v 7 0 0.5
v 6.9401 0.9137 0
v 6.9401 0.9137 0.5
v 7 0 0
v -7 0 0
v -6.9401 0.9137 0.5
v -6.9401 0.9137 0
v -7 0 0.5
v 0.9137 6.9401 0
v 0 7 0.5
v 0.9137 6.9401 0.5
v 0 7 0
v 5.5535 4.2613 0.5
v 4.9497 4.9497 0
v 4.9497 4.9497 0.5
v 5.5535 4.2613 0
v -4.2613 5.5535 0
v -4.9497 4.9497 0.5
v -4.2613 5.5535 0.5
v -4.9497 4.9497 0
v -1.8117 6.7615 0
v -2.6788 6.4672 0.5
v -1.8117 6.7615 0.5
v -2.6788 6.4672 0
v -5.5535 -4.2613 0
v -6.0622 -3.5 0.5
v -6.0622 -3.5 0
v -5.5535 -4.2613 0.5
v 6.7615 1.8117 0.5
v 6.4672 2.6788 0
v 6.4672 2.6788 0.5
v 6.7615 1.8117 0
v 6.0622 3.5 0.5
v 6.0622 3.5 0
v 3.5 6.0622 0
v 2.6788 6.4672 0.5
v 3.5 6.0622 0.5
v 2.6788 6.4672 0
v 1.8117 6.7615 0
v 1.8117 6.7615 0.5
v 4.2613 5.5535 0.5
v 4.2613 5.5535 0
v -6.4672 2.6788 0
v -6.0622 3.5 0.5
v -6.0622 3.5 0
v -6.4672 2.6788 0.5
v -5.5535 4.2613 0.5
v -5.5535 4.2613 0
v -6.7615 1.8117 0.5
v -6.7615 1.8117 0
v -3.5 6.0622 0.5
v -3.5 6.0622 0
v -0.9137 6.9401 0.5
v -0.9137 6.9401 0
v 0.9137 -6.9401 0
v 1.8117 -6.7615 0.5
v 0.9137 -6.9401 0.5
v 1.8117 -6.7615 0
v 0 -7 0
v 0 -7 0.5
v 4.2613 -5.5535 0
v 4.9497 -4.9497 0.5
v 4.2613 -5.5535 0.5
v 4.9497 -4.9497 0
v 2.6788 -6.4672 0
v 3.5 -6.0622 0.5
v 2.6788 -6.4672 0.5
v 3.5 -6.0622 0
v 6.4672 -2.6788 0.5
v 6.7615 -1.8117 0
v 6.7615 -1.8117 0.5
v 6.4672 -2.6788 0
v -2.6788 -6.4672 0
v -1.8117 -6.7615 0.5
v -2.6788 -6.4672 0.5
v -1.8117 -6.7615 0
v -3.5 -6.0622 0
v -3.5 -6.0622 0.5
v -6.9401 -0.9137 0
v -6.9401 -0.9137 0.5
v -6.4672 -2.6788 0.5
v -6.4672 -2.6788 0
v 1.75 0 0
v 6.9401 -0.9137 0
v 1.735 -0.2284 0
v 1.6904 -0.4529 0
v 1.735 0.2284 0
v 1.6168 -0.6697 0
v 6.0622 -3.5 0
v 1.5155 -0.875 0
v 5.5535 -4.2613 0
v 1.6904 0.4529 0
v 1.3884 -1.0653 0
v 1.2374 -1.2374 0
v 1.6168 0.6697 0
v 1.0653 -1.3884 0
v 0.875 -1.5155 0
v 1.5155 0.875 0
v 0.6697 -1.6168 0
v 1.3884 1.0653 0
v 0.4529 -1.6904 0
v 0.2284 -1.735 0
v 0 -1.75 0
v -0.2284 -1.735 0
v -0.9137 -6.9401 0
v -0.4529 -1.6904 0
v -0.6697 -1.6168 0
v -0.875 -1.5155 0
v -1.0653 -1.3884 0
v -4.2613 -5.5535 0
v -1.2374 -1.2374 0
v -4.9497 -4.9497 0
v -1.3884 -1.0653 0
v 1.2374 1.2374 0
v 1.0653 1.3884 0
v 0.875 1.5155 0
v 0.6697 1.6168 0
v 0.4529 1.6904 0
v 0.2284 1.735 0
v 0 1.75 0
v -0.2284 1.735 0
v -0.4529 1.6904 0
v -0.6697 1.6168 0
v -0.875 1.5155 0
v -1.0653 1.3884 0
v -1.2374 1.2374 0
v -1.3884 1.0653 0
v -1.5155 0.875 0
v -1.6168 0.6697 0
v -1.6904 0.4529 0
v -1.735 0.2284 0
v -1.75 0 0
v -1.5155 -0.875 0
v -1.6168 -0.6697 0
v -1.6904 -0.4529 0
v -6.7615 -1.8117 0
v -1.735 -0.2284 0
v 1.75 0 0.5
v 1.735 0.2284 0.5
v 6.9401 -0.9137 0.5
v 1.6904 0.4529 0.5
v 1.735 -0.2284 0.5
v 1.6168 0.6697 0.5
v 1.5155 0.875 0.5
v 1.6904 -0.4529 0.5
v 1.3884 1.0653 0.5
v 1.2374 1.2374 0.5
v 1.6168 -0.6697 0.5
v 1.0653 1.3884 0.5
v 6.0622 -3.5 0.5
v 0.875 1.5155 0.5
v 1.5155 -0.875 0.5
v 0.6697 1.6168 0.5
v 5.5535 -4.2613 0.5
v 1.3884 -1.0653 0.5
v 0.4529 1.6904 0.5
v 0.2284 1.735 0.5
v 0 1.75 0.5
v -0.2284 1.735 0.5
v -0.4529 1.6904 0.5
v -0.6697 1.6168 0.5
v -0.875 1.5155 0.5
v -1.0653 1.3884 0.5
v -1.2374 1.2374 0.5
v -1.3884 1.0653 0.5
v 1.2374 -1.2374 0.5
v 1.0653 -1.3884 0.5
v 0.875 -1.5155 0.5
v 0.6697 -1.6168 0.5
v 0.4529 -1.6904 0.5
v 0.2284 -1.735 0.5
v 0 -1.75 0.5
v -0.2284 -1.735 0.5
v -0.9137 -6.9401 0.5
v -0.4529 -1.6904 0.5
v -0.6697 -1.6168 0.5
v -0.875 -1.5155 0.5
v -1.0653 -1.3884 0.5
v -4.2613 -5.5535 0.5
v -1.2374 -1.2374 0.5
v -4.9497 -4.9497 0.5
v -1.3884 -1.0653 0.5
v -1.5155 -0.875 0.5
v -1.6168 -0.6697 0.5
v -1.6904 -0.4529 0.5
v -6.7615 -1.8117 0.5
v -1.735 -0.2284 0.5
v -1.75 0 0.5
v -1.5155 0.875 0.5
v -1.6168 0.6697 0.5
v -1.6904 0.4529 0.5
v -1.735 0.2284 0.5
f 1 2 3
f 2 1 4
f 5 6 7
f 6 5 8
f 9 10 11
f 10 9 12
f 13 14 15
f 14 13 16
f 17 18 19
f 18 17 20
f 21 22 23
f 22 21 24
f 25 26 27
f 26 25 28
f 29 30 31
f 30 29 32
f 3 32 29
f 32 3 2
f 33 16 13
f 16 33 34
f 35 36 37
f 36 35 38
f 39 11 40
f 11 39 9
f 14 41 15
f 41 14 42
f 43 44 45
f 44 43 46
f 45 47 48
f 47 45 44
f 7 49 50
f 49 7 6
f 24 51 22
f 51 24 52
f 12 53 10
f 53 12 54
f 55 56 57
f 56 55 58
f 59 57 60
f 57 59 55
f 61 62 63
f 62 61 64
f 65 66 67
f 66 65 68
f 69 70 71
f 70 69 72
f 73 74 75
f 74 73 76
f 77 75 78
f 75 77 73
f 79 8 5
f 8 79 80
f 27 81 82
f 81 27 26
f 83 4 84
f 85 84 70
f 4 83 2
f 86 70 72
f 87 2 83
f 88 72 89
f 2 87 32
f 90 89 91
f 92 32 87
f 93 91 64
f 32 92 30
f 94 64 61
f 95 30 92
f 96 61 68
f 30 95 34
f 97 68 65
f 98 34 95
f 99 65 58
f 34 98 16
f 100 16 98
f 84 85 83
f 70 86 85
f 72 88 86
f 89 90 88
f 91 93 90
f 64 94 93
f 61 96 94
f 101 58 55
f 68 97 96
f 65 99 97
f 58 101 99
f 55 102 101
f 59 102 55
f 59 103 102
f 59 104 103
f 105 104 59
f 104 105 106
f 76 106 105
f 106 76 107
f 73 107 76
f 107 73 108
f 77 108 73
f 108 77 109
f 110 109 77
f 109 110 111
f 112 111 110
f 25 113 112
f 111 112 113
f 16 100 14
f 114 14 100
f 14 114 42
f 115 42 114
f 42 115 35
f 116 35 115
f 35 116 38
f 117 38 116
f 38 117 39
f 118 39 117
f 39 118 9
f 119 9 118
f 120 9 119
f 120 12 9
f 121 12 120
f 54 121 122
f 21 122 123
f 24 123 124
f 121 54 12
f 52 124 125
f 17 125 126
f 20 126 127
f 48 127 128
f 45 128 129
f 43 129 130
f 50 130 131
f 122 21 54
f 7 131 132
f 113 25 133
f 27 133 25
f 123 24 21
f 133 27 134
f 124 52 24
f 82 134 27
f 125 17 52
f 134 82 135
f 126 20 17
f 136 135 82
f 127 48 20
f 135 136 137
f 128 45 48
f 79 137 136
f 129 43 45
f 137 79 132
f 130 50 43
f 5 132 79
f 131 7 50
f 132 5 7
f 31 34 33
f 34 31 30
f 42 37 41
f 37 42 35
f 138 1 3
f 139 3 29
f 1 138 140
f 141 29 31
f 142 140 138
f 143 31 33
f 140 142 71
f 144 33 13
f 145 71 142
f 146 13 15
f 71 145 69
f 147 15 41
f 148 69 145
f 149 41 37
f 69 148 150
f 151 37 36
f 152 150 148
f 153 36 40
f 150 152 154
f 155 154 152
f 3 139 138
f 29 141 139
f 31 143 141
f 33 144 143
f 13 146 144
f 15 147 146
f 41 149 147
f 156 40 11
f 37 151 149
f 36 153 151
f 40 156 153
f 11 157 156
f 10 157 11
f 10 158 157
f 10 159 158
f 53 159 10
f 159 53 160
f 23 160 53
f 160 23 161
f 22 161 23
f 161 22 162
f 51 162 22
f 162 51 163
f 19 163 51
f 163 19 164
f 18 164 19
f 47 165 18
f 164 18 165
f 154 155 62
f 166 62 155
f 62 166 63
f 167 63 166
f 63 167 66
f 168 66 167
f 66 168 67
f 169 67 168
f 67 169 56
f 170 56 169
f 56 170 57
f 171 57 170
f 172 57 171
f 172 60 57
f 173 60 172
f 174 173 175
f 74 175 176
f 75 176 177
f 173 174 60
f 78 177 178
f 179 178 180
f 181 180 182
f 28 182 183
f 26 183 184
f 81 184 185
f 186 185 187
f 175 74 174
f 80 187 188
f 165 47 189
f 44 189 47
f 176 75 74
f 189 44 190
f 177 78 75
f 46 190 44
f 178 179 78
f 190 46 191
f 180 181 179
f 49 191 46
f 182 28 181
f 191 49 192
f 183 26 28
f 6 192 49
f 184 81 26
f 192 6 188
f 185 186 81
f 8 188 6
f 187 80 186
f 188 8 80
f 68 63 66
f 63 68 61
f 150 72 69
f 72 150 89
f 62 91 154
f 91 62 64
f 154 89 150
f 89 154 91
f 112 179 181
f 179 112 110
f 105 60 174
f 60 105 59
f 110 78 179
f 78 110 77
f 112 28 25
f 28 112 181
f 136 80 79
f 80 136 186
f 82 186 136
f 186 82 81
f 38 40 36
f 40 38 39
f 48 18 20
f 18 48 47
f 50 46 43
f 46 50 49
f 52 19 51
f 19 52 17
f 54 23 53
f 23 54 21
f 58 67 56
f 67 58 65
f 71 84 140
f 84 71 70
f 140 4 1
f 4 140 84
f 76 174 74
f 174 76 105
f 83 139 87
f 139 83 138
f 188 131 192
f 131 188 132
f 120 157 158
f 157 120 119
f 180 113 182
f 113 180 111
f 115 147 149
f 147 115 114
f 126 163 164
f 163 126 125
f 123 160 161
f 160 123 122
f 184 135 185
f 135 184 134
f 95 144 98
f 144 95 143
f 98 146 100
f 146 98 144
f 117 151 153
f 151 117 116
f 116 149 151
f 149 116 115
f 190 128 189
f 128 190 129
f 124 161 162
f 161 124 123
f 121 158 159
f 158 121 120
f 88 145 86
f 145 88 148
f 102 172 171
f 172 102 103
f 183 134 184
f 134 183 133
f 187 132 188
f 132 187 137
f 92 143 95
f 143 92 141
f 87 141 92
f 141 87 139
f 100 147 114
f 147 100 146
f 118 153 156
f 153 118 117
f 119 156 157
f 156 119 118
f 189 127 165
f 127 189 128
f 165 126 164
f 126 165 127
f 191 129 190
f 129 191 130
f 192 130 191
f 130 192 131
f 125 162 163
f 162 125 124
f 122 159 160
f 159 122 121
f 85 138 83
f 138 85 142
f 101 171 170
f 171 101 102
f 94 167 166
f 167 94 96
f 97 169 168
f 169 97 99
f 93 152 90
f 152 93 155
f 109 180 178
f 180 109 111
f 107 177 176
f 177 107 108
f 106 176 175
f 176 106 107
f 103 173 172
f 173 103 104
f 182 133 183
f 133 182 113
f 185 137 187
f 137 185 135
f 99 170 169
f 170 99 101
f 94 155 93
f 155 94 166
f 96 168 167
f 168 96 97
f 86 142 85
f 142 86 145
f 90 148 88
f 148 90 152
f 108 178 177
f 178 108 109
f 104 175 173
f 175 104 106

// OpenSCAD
// Gen-CZ — assembly gap shim, h = run_clear (rotor face -> flange); copper is inside the flanges
include <parameters.scad>;
$fn = 48;
difference() {
    cylinder(d=spacer_pad_od, h=gap_spacer_h);
    translate([0, 0, -0.1]) cylinder(d=spacer_pad_id, h=gap_spacer_h + 0.2);
}
